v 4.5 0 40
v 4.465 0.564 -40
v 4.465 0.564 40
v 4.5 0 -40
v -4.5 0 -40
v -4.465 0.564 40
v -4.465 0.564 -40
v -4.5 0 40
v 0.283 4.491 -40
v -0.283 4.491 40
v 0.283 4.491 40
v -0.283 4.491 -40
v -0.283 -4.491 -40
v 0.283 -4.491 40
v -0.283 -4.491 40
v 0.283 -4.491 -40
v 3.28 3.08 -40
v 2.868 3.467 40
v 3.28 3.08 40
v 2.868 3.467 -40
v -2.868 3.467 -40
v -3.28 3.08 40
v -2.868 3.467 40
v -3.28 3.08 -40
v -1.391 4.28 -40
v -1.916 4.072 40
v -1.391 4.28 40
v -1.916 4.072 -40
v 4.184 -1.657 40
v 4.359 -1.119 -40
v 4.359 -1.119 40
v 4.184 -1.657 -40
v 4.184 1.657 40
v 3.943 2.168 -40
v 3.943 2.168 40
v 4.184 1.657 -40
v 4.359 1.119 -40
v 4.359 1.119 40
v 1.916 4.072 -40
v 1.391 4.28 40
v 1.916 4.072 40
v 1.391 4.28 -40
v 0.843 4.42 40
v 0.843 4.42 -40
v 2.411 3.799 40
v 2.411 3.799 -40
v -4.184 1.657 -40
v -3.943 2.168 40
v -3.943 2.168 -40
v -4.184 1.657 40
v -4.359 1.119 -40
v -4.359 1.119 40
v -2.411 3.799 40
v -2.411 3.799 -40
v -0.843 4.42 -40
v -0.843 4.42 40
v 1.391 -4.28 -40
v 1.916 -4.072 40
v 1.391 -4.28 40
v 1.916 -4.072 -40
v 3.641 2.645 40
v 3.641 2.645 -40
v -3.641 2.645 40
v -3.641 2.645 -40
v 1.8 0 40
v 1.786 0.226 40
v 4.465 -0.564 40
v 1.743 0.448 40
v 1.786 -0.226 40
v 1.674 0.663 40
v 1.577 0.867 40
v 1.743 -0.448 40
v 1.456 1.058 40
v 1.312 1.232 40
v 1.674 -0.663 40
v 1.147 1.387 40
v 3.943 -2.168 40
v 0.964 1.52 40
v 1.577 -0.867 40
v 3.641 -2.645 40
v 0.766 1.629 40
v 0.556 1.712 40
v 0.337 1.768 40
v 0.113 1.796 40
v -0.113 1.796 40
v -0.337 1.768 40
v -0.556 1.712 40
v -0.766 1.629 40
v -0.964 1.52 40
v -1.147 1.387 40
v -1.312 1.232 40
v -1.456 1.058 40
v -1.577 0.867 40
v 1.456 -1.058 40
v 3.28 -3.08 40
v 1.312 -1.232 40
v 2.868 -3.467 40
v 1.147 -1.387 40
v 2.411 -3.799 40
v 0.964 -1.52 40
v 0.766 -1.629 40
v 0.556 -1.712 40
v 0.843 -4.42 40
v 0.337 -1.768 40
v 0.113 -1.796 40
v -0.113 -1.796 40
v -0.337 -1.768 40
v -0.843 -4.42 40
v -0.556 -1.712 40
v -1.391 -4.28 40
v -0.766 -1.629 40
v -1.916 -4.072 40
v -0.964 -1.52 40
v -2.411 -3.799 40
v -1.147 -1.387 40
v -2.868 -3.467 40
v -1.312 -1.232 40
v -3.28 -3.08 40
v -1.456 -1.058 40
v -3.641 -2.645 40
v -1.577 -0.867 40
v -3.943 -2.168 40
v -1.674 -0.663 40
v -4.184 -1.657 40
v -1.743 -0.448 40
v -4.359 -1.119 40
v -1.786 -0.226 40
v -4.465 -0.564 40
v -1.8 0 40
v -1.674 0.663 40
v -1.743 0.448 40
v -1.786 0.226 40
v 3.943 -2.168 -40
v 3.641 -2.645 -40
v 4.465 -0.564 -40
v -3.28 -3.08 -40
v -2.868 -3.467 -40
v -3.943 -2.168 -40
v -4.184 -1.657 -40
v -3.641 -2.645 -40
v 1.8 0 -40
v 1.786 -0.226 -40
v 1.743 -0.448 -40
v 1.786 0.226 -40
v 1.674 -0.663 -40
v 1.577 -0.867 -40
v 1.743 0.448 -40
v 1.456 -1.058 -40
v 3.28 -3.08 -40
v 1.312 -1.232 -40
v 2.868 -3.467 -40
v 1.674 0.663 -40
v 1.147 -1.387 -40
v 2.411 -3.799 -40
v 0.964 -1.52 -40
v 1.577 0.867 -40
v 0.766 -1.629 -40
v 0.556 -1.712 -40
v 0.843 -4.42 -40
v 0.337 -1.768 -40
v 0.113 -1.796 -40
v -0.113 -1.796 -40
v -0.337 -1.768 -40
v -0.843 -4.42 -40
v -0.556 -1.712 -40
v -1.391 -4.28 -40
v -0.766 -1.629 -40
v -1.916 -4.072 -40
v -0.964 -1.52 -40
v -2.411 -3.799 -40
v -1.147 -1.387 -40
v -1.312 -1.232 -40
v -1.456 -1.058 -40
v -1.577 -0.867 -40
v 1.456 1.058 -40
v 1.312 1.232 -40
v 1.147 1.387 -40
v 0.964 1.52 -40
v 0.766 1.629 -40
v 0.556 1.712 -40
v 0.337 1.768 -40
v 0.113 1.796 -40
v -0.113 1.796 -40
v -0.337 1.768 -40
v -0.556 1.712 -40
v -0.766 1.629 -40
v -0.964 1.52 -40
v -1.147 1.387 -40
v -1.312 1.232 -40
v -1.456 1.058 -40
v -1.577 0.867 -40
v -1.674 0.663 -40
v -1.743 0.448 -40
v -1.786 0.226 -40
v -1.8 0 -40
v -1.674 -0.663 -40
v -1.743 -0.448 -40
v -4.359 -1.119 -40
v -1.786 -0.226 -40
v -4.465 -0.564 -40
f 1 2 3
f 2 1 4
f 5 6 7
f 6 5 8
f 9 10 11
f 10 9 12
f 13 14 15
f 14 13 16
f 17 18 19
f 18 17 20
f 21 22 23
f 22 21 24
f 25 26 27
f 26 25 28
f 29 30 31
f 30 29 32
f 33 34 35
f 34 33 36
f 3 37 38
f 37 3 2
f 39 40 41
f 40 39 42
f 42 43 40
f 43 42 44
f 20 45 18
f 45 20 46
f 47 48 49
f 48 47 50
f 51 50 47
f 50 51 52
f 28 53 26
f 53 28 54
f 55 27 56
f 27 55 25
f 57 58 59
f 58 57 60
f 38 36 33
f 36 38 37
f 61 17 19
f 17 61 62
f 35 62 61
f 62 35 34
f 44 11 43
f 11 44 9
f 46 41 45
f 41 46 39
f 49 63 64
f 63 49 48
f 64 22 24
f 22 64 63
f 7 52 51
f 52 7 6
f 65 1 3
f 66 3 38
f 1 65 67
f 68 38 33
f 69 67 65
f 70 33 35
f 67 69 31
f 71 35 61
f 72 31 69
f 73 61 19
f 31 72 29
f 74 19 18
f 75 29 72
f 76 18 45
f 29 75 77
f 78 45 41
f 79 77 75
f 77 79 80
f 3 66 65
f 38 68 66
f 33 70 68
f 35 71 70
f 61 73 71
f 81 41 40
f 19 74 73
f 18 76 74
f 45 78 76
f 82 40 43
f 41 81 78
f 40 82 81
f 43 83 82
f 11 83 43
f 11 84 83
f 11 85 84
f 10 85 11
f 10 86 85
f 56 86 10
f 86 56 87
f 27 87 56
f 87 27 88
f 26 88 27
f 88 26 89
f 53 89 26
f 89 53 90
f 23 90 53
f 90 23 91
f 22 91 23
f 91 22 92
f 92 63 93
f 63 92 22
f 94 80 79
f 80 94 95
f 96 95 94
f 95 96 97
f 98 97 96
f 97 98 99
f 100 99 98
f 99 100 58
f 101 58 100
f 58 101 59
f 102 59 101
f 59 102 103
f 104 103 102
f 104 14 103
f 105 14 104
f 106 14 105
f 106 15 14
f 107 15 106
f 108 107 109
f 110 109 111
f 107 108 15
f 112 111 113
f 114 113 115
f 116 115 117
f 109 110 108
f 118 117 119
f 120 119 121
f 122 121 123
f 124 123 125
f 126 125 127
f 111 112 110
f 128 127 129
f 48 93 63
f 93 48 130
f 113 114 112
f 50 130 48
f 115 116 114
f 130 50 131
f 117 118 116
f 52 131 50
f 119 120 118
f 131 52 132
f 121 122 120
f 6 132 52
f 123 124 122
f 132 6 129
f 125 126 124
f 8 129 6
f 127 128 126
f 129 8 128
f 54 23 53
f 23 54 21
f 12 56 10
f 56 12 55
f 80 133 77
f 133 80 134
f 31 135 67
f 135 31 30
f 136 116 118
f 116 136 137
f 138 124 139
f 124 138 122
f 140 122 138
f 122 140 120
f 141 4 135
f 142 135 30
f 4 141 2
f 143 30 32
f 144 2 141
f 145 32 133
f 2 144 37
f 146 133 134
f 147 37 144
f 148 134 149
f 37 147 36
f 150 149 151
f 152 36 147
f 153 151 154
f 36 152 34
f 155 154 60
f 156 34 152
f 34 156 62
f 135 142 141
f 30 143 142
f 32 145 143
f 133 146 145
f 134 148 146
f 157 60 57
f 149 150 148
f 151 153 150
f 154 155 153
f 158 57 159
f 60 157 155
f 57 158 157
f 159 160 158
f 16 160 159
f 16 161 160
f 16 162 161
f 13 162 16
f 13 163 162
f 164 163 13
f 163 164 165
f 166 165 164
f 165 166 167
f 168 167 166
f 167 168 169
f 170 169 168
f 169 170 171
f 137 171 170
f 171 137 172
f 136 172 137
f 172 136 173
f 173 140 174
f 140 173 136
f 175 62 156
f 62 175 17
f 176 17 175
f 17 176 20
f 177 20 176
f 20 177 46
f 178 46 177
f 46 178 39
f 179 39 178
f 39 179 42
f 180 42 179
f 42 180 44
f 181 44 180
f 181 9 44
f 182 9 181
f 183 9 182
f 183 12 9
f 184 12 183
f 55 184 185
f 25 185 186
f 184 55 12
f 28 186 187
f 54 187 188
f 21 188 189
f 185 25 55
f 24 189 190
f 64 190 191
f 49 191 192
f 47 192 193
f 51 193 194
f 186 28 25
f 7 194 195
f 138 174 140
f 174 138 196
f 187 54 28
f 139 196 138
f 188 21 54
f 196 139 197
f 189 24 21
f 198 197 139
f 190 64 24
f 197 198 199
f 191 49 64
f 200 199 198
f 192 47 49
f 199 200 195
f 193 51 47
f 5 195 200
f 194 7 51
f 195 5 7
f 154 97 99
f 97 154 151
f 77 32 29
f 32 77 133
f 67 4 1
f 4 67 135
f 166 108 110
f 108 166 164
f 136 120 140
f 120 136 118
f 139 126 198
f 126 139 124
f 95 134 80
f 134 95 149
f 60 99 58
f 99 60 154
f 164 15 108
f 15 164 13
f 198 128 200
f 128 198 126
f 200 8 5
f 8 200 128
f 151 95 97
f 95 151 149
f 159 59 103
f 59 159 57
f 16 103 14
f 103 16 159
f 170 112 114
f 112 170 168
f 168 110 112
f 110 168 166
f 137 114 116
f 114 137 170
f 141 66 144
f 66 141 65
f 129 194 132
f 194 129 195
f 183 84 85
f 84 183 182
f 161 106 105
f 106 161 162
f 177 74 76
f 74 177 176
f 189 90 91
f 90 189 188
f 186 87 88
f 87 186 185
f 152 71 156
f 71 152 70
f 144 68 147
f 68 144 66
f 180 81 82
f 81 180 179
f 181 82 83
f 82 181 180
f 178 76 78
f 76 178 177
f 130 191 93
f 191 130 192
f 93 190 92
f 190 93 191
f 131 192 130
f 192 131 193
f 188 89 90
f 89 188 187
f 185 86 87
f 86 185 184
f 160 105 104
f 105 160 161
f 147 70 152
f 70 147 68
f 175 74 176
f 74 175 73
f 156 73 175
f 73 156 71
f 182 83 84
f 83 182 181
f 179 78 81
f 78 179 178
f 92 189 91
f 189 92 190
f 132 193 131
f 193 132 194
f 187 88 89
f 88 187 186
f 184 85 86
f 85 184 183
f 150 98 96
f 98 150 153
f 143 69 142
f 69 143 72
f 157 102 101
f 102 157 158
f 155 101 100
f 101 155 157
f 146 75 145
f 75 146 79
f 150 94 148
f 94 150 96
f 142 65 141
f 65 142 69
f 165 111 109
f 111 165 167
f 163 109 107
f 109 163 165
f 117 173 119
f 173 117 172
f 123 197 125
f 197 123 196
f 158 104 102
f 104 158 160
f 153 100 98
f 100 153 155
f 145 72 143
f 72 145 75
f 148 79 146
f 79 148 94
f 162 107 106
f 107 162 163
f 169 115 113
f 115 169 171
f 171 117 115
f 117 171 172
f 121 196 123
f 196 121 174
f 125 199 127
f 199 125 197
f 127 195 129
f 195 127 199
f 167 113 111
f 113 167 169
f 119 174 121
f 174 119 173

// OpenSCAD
$fn = 50;


difference() {
	union() {
		translate(v = [0, 0, -40.0000000000]) {
			cylinder(h = 80, r = 4.5000000000);
		}
	}
	union() {
		translate(v = [0, 0, -100.0000000000]) {
			cylinder(h = 200, r = 1.8000000000);
		}
	}
}
